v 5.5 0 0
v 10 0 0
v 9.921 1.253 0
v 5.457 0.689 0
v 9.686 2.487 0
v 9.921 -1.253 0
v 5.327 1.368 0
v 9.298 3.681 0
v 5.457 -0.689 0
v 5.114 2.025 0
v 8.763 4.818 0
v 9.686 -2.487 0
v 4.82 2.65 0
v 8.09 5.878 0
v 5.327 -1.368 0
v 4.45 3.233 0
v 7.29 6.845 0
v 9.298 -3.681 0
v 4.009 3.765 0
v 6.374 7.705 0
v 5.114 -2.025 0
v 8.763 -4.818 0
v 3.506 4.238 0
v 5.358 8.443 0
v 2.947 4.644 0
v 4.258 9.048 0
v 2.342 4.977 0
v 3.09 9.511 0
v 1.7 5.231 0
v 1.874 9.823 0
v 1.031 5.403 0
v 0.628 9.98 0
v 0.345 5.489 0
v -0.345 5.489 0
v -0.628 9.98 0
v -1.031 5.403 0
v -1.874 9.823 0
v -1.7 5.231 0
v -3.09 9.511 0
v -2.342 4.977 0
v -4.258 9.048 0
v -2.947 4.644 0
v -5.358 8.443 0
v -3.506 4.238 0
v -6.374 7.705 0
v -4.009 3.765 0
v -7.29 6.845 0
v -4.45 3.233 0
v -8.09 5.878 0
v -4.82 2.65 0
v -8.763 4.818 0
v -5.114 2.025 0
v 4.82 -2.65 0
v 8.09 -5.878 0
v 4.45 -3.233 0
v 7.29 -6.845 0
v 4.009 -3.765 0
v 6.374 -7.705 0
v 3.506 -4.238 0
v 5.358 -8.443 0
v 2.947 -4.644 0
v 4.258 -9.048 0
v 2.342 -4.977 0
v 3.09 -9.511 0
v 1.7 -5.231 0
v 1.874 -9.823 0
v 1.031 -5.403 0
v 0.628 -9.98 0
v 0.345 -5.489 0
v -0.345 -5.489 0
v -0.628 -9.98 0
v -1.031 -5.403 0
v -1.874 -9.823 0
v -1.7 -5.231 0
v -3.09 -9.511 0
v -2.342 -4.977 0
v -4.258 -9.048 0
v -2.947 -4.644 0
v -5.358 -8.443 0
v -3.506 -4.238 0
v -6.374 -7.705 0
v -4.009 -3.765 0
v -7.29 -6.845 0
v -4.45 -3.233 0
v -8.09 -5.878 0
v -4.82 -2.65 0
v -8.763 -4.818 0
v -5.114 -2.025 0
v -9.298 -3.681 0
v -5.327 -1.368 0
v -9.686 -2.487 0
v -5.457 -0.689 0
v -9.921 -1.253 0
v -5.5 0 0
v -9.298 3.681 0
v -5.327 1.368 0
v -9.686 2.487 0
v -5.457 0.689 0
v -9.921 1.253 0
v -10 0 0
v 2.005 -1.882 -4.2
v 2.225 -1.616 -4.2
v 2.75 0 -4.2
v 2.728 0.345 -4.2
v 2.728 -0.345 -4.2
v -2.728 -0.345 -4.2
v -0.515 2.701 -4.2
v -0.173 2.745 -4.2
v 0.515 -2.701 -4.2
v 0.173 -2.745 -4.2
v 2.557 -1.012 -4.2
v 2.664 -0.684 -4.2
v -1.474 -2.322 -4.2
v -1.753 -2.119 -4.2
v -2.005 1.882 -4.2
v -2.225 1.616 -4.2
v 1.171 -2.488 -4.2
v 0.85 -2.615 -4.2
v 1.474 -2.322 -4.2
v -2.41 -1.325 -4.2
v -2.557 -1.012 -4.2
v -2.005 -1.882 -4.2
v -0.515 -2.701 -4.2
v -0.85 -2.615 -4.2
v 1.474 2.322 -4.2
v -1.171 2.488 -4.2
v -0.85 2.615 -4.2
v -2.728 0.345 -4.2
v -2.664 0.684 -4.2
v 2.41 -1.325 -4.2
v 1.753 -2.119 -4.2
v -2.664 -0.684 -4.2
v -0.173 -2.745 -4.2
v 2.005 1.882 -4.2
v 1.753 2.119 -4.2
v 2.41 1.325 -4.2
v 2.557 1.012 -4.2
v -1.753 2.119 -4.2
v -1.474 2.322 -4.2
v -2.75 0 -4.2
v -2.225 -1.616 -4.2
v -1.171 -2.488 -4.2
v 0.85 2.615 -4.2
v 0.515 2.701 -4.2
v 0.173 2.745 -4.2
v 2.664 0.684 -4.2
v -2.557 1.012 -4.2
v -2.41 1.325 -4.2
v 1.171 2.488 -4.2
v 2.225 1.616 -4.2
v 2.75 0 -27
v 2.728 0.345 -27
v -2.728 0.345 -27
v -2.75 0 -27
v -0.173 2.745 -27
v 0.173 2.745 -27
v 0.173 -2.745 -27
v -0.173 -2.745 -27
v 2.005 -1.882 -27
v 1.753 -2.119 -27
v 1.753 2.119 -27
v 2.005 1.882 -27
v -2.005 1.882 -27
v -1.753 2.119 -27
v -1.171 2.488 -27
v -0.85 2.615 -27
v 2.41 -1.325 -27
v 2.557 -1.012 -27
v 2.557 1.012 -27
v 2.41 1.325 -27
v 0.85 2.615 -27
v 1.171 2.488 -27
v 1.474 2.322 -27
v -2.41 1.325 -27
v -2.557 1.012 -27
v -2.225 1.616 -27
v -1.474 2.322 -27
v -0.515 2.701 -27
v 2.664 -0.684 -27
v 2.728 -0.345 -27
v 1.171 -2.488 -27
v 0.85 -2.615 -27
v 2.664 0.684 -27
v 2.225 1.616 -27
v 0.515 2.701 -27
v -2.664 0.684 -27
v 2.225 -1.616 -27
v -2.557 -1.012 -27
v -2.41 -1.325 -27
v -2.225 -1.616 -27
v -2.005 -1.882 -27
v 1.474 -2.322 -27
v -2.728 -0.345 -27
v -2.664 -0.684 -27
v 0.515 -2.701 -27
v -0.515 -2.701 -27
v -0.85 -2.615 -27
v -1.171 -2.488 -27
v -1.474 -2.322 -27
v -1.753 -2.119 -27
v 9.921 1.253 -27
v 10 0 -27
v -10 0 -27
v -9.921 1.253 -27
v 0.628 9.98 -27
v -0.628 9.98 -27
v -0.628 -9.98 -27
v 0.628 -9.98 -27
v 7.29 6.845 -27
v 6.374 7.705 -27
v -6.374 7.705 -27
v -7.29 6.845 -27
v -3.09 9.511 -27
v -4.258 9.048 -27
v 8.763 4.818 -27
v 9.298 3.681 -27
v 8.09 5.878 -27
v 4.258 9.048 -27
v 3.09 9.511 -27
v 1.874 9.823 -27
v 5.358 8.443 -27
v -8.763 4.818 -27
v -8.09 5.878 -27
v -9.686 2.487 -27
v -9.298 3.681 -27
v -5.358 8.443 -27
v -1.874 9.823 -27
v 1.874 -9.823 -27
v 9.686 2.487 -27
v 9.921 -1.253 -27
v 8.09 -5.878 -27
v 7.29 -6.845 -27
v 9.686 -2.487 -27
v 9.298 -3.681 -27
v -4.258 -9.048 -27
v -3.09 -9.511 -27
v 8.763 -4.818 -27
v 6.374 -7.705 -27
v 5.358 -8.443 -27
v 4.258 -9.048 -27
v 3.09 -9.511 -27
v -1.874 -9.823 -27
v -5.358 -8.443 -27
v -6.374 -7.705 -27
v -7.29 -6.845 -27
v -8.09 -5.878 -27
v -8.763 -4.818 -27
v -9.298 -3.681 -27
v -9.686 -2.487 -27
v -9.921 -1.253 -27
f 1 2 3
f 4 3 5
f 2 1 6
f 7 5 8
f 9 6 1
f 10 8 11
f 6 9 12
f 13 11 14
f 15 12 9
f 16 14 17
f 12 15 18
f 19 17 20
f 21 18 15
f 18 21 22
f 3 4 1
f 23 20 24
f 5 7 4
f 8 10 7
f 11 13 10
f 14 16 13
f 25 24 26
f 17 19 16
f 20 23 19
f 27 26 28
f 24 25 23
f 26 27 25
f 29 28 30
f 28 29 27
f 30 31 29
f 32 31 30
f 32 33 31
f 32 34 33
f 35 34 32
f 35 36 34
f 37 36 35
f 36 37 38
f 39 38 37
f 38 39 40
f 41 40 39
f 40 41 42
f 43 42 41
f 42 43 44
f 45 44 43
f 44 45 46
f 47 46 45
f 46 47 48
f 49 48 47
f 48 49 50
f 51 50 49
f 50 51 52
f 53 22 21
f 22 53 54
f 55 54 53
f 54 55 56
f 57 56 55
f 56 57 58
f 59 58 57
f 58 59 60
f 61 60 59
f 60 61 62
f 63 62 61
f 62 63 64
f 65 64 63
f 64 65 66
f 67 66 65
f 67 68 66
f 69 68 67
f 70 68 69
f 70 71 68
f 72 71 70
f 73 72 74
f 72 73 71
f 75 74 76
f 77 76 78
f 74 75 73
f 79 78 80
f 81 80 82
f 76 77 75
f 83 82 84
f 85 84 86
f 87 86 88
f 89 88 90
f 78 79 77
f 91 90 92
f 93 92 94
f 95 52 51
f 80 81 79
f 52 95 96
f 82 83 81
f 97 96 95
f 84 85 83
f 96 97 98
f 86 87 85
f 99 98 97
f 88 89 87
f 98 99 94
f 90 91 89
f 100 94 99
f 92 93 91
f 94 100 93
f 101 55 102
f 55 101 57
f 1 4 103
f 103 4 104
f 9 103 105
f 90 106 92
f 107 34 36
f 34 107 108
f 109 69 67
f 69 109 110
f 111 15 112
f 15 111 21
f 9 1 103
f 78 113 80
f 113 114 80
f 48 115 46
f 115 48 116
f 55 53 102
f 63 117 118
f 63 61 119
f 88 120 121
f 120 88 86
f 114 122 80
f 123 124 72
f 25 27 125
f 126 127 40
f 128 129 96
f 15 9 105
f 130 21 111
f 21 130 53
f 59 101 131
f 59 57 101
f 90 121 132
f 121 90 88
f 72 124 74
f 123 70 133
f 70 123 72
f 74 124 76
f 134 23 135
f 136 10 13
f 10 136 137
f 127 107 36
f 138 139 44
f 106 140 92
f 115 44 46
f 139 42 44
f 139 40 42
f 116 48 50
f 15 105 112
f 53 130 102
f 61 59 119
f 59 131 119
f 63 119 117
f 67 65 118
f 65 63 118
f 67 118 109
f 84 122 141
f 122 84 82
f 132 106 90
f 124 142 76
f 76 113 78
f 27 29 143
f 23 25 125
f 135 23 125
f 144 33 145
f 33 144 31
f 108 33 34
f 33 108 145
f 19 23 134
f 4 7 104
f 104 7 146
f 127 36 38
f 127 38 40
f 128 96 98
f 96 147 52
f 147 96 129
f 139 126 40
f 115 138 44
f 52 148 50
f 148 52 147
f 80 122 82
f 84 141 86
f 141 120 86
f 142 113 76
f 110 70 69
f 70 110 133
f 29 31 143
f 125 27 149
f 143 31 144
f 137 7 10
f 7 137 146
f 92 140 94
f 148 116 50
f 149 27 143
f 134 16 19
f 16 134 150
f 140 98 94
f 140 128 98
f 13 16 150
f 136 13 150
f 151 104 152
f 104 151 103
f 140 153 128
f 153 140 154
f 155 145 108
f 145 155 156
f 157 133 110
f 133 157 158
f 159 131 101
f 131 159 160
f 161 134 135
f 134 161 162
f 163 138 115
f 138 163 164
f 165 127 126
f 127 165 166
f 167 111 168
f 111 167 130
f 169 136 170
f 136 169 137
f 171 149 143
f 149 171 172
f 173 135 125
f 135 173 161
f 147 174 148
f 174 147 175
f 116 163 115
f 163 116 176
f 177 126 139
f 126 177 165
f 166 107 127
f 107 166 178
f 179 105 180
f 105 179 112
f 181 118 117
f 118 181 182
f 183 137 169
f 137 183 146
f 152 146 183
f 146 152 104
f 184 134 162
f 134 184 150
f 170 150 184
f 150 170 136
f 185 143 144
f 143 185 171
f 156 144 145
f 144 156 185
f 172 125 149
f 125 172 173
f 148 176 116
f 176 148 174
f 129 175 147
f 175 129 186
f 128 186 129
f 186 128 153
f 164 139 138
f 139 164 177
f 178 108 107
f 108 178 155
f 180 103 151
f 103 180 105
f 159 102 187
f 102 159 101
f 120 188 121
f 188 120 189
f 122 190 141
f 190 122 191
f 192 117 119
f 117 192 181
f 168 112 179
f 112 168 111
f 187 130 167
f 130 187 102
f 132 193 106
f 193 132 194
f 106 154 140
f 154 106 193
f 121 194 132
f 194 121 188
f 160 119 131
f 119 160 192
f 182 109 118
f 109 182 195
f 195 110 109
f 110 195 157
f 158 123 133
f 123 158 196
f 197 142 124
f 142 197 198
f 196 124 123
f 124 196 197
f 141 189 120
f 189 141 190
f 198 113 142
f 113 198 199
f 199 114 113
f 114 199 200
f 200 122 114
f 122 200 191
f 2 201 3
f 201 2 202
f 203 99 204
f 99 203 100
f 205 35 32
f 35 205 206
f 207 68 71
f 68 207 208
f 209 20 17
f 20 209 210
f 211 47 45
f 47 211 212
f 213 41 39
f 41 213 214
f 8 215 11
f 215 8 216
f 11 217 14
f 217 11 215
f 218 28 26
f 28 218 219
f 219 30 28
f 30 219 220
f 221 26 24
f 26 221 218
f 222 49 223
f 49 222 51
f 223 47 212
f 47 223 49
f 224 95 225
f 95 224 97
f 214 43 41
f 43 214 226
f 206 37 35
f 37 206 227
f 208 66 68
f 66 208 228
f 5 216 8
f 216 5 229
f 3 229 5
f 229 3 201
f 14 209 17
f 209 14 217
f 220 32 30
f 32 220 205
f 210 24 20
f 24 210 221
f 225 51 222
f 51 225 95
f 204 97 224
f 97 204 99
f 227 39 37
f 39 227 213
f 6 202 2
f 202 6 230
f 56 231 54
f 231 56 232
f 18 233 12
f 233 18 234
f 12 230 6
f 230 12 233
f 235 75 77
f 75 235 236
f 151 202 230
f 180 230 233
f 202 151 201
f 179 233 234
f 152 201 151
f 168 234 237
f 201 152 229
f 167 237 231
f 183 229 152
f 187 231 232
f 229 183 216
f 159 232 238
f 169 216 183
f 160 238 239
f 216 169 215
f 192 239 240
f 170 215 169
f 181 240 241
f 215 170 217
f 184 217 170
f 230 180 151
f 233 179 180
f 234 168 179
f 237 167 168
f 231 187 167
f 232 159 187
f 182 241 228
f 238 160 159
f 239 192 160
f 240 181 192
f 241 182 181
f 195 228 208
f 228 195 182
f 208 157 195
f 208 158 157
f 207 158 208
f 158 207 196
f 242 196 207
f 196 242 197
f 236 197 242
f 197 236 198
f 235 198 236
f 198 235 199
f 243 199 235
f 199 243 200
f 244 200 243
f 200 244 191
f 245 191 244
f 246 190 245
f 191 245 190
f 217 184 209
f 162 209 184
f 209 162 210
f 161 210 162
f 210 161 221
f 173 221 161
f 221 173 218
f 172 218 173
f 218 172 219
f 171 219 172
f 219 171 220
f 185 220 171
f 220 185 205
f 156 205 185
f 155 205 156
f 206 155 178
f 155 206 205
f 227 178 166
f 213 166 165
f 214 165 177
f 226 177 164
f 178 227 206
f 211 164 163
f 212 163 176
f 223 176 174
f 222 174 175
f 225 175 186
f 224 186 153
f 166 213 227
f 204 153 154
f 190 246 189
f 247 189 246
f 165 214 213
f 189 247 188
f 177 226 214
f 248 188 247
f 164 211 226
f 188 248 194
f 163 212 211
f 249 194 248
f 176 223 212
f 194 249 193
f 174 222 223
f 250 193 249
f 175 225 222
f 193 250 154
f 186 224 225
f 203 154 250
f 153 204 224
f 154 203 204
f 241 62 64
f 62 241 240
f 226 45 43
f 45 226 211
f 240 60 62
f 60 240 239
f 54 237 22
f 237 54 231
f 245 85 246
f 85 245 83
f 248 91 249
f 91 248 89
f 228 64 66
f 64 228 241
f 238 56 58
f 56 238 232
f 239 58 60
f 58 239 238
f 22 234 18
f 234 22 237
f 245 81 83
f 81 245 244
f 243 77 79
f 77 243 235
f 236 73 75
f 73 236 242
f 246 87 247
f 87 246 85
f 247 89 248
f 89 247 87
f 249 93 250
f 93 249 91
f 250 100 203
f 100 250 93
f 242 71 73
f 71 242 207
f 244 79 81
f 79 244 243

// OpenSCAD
$fn = 50;

difference() {
	union() {
		translate(v = [0, 0, -27.0]) {
			cylinder(h = 27, r = 10.0);
		}
	}
	union() {
		translate(v = [0, 0, 0]) {
			rotate(a = [0, 0, 0]) {
				difference() {
					union() {
						translate(v = [0, 0, -30.0]) {
							cylinder(h = 30, r = 2.25);
						}
						translate(v = [0, 0, -4.2]) {
							cylinder(h = 4.2, r1 = 2.75, r2 = 5.5);
						}
						translate(v = [0, 0, -30.0]) {
							cylinder(h = 30, r = 2.75);
						}
						translate(v = [0, 0, -30.0]) {
							cylinder(h = 30, r = 2.25);
						}
					}
					union();
				}
			}
		}
	}
}
